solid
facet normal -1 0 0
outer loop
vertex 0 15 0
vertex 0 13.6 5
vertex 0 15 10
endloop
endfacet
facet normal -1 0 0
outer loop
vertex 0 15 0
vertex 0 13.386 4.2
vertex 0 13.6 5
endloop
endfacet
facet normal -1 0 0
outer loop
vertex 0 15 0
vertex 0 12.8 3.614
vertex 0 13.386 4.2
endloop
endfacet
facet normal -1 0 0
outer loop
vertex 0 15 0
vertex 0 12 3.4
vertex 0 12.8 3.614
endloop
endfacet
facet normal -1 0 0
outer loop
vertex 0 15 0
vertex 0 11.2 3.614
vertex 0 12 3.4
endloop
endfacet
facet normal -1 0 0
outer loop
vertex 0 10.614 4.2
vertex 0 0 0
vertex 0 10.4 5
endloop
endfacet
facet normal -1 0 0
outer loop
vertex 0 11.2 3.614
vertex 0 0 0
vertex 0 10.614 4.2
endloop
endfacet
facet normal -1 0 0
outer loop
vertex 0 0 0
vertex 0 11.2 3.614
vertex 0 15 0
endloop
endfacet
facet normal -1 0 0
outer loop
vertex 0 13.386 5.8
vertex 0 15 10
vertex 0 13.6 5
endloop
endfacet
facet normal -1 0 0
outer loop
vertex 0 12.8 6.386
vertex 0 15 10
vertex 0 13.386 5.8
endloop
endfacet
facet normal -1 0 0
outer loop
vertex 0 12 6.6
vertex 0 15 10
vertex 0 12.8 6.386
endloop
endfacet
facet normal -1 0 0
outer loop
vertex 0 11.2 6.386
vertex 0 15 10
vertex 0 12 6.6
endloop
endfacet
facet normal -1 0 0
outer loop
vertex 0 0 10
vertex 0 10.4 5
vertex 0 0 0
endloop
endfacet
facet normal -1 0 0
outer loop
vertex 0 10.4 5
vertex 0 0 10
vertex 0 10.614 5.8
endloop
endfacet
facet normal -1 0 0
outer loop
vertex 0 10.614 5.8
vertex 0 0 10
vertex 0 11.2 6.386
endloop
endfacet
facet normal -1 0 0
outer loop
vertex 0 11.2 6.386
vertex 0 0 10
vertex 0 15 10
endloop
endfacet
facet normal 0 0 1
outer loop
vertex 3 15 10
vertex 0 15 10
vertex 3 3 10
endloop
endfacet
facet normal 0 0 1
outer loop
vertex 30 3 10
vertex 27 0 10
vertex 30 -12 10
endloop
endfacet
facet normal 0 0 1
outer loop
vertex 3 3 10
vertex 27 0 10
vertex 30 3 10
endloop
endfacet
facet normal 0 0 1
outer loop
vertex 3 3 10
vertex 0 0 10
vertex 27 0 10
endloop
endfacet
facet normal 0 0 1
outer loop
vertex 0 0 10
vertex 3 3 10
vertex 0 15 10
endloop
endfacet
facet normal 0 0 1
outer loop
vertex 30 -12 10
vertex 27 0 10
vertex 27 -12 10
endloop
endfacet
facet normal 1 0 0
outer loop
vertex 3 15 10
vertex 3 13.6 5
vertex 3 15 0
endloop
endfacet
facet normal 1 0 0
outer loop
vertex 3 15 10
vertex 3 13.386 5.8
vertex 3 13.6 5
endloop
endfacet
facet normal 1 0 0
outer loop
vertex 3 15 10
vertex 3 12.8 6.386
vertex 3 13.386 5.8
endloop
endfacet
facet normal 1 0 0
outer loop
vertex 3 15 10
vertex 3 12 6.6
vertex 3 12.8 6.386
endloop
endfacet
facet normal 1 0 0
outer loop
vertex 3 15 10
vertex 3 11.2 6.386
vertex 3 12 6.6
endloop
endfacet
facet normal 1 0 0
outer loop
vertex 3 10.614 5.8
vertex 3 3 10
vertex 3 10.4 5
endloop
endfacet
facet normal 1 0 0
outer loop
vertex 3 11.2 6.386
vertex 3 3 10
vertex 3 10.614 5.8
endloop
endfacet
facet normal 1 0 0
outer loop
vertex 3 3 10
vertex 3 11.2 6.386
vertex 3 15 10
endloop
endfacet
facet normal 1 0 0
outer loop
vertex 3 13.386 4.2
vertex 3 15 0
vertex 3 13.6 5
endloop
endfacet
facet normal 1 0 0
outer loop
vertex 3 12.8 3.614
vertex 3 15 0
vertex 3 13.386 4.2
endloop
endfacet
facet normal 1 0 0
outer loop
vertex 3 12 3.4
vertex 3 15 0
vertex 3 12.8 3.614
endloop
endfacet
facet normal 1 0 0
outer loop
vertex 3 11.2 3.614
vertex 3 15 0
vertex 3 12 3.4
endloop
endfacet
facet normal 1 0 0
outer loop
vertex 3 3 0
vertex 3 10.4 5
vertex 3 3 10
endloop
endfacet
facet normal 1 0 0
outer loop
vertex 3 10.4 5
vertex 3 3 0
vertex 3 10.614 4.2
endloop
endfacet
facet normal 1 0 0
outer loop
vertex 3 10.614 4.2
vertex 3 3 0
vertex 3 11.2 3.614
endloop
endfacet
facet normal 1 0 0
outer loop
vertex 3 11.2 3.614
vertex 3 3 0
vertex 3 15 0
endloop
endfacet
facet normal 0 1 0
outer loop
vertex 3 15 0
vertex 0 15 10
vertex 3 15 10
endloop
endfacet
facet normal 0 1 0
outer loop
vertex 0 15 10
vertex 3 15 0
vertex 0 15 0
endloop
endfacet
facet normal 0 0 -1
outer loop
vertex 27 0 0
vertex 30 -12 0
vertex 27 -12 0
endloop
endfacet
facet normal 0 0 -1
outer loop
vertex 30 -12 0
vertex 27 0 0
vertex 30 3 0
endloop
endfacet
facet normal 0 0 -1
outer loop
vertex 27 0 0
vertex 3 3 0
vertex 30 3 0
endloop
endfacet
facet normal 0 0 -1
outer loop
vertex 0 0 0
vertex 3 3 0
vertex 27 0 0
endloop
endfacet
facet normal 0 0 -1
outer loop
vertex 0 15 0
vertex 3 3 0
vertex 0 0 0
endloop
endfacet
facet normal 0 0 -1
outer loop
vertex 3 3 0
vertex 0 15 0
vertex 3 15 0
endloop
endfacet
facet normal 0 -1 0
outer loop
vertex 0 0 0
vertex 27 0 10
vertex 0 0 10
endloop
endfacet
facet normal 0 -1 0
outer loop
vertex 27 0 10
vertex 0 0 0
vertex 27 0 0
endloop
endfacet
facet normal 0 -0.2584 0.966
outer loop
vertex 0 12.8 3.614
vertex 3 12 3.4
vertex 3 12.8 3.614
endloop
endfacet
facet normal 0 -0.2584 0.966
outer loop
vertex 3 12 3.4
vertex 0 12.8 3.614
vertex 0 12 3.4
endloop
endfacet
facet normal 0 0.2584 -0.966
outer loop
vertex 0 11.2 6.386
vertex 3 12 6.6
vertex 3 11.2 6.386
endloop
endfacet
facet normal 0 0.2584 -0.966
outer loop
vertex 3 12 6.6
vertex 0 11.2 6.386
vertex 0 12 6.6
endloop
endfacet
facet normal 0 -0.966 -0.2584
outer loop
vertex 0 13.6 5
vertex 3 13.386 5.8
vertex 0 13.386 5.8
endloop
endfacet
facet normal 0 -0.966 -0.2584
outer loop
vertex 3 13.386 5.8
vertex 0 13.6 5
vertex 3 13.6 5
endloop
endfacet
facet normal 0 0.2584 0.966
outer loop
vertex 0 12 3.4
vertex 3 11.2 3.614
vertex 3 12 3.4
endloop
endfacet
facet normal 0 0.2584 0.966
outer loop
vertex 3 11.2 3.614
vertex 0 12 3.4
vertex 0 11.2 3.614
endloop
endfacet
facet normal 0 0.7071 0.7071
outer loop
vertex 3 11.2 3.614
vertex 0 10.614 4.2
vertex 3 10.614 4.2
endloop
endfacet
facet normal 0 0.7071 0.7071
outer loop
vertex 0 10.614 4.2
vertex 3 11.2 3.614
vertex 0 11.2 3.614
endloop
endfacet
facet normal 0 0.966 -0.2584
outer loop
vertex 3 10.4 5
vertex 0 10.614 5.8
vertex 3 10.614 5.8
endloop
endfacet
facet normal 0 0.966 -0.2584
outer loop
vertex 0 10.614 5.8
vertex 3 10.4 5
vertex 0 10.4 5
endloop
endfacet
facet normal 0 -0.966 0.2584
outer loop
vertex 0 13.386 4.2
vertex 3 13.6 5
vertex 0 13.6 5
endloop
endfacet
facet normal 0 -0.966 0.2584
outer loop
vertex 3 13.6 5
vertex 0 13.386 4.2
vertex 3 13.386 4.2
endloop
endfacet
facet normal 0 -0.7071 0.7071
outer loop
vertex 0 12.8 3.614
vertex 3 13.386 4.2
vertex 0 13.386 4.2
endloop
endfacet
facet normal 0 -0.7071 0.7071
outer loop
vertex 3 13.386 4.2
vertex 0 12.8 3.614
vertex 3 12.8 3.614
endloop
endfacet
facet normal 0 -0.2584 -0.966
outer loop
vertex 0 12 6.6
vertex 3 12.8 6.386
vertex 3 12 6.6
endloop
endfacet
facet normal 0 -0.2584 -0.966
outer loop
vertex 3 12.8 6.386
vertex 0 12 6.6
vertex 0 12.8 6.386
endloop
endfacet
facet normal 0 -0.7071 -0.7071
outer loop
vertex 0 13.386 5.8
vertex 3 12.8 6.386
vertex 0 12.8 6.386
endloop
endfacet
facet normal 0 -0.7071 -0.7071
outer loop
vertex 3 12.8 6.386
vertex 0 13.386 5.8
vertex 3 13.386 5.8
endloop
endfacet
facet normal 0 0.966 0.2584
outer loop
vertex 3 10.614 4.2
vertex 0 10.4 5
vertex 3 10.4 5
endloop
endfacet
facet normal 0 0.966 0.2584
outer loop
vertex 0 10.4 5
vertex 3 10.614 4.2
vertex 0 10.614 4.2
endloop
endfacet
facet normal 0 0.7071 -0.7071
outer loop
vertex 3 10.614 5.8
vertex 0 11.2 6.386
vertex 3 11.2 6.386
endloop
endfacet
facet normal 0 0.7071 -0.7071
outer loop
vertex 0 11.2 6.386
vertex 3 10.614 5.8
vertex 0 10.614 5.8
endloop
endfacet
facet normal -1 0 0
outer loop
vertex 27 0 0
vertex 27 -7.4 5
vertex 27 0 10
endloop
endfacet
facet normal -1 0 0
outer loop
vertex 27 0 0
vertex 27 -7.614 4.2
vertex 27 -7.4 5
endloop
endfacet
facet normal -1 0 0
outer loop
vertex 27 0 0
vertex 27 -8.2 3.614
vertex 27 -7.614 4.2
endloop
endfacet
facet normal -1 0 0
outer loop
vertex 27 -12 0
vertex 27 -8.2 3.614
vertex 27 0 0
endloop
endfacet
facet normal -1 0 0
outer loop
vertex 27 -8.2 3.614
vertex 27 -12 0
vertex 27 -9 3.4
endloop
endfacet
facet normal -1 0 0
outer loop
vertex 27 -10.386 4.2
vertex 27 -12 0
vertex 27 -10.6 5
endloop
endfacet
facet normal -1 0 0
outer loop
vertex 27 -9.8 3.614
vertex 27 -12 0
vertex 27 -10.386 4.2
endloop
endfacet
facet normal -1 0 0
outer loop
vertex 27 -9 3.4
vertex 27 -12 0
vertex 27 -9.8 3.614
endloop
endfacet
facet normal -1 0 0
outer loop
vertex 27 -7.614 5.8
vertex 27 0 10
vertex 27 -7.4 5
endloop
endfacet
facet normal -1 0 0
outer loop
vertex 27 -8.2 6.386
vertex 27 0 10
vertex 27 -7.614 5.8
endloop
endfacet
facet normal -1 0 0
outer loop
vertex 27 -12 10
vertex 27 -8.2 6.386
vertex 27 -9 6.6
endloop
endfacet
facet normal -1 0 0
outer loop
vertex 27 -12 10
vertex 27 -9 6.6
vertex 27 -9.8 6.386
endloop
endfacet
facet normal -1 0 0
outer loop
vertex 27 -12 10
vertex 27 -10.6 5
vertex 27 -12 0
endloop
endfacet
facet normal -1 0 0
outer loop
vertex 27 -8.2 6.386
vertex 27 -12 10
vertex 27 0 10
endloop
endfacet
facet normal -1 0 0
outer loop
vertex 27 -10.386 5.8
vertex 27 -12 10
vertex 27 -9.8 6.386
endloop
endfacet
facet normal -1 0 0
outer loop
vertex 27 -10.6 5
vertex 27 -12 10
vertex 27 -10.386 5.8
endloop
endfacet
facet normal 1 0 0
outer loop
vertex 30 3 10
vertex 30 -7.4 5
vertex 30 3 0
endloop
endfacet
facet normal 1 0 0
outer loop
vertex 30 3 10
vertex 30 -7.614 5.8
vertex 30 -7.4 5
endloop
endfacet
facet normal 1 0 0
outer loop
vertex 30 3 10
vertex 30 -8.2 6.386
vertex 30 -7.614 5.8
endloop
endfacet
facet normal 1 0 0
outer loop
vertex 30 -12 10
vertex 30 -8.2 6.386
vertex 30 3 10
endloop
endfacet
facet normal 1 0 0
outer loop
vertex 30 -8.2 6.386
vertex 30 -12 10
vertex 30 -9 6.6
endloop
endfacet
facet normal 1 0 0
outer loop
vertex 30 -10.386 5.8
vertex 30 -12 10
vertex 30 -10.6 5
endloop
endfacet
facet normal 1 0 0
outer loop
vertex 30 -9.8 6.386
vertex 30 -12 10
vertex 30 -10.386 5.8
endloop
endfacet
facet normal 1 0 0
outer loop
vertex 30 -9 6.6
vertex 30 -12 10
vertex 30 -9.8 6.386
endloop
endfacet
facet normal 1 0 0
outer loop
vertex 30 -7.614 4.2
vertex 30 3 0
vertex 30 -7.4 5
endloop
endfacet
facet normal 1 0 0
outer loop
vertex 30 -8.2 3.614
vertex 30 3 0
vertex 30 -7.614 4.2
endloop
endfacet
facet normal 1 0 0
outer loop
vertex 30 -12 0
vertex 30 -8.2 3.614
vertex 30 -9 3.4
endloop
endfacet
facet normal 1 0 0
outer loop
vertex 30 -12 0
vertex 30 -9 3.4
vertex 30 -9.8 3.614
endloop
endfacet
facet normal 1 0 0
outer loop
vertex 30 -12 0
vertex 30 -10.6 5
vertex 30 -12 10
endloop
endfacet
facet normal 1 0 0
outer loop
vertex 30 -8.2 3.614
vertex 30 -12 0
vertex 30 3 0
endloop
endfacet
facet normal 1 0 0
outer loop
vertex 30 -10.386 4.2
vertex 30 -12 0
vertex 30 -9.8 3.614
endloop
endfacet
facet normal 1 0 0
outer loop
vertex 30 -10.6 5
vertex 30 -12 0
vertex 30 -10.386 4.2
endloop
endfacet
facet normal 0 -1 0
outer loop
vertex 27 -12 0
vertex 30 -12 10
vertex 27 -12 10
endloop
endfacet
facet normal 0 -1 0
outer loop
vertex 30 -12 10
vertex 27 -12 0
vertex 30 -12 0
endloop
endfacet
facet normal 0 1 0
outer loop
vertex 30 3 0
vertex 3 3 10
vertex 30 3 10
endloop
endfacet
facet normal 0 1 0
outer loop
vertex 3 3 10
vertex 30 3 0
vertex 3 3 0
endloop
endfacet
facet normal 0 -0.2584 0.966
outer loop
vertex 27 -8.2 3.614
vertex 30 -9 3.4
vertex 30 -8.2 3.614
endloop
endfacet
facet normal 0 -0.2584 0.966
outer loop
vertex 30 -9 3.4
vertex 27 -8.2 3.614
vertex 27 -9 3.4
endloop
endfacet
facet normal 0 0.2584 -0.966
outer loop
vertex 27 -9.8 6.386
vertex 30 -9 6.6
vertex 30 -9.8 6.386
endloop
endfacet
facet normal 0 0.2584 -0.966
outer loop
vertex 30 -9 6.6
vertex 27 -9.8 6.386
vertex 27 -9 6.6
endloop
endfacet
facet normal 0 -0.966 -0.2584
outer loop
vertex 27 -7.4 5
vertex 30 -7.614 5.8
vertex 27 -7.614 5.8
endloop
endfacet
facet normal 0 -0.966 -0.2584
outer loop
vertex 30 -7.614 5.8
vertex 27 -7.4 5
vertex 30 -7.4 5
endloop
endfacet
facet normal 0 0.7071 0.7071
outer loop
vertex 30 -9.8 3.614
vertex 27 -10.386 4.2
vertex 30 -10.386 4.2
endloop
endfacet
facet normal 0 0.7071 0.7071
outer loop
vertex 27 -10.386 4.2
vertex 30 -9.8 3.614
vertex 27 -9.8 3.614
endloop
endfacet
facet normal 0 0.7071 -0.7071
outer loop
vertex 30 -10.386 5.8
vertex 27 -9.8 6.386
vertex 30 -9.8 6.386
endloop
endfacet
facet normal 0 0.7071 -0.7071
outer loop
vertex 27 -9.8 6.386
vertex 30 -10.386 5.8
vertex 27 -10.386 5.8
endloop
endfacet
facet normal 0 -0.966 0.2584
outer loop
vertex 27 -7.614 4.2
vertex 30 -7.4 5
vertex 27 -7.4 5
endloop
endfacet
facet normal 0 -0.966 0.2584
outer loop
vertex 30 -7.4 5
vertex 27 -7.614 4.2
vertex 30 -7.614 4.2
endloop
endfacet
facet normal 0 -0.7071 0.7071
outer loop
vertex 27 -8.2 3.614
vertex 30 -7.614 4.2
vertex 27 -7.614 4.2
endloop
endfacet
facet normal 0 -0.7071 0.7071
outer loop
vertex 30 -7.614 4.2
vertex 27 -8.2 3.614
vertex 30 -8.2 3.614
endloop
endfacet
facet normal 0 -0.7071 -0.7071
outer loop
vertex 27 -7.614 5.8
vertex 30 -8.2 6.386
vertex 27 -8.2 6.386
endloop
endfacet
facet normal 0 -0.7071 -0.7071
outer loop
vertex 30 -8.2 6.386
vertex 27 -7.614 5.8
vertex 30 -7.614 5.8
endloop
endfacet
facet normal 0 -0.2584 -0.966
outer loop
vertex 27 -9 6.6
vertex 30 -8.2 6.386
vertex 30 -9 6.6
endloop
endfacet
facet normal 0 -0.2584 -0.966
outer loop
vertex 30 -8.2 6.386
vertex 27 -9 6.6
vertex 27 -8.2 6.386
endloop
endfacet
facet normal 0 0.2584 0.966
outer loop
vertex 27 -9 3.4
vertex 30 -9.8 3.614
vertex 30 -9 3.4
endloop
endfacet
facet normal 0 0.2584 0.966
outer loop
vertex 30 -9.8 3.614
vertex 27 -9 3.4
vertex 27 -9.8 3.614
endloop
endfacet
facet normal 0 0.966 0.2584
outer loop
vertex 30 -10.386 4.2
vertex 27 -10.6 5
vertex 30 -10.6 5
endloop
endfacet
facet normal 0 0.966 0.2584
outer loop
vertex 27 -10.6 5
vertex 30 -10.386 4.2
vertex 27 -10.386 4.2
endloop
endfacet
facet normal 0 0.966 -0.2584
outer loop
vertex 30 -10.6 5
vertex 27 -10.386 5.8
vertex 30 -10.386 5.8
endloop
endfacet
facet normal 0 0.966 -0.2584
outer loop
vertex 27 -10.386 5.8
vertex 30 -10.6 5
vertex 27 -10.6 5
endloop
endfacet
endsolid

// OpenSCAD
lp = 3; // largura  da parede 
dc = 30; // distância para o chassis 
a = 10; // altura
ca = 15; // comprimento do apoio 
df = 3; //deslocamento do furo 

$fn = 12; 



union() {
    cube([dc,lp,a]);
    
    difference(){
        cube([lp,ca,a]);
            
        translate([-1,ca-df,a/2])
        rotate([0,90,0])
        cylinder(lp+2,r=1.6,true);
    }
    
    translate([dc-lp,-ca+lp,0])
        
     difference(){
        cube([lp,ca,a]);
            
        translate([-1,df,a/2])
        rotate([0,90,0])
        cylinder(lp+2,r=1.6,true);
    }
    
}

    
